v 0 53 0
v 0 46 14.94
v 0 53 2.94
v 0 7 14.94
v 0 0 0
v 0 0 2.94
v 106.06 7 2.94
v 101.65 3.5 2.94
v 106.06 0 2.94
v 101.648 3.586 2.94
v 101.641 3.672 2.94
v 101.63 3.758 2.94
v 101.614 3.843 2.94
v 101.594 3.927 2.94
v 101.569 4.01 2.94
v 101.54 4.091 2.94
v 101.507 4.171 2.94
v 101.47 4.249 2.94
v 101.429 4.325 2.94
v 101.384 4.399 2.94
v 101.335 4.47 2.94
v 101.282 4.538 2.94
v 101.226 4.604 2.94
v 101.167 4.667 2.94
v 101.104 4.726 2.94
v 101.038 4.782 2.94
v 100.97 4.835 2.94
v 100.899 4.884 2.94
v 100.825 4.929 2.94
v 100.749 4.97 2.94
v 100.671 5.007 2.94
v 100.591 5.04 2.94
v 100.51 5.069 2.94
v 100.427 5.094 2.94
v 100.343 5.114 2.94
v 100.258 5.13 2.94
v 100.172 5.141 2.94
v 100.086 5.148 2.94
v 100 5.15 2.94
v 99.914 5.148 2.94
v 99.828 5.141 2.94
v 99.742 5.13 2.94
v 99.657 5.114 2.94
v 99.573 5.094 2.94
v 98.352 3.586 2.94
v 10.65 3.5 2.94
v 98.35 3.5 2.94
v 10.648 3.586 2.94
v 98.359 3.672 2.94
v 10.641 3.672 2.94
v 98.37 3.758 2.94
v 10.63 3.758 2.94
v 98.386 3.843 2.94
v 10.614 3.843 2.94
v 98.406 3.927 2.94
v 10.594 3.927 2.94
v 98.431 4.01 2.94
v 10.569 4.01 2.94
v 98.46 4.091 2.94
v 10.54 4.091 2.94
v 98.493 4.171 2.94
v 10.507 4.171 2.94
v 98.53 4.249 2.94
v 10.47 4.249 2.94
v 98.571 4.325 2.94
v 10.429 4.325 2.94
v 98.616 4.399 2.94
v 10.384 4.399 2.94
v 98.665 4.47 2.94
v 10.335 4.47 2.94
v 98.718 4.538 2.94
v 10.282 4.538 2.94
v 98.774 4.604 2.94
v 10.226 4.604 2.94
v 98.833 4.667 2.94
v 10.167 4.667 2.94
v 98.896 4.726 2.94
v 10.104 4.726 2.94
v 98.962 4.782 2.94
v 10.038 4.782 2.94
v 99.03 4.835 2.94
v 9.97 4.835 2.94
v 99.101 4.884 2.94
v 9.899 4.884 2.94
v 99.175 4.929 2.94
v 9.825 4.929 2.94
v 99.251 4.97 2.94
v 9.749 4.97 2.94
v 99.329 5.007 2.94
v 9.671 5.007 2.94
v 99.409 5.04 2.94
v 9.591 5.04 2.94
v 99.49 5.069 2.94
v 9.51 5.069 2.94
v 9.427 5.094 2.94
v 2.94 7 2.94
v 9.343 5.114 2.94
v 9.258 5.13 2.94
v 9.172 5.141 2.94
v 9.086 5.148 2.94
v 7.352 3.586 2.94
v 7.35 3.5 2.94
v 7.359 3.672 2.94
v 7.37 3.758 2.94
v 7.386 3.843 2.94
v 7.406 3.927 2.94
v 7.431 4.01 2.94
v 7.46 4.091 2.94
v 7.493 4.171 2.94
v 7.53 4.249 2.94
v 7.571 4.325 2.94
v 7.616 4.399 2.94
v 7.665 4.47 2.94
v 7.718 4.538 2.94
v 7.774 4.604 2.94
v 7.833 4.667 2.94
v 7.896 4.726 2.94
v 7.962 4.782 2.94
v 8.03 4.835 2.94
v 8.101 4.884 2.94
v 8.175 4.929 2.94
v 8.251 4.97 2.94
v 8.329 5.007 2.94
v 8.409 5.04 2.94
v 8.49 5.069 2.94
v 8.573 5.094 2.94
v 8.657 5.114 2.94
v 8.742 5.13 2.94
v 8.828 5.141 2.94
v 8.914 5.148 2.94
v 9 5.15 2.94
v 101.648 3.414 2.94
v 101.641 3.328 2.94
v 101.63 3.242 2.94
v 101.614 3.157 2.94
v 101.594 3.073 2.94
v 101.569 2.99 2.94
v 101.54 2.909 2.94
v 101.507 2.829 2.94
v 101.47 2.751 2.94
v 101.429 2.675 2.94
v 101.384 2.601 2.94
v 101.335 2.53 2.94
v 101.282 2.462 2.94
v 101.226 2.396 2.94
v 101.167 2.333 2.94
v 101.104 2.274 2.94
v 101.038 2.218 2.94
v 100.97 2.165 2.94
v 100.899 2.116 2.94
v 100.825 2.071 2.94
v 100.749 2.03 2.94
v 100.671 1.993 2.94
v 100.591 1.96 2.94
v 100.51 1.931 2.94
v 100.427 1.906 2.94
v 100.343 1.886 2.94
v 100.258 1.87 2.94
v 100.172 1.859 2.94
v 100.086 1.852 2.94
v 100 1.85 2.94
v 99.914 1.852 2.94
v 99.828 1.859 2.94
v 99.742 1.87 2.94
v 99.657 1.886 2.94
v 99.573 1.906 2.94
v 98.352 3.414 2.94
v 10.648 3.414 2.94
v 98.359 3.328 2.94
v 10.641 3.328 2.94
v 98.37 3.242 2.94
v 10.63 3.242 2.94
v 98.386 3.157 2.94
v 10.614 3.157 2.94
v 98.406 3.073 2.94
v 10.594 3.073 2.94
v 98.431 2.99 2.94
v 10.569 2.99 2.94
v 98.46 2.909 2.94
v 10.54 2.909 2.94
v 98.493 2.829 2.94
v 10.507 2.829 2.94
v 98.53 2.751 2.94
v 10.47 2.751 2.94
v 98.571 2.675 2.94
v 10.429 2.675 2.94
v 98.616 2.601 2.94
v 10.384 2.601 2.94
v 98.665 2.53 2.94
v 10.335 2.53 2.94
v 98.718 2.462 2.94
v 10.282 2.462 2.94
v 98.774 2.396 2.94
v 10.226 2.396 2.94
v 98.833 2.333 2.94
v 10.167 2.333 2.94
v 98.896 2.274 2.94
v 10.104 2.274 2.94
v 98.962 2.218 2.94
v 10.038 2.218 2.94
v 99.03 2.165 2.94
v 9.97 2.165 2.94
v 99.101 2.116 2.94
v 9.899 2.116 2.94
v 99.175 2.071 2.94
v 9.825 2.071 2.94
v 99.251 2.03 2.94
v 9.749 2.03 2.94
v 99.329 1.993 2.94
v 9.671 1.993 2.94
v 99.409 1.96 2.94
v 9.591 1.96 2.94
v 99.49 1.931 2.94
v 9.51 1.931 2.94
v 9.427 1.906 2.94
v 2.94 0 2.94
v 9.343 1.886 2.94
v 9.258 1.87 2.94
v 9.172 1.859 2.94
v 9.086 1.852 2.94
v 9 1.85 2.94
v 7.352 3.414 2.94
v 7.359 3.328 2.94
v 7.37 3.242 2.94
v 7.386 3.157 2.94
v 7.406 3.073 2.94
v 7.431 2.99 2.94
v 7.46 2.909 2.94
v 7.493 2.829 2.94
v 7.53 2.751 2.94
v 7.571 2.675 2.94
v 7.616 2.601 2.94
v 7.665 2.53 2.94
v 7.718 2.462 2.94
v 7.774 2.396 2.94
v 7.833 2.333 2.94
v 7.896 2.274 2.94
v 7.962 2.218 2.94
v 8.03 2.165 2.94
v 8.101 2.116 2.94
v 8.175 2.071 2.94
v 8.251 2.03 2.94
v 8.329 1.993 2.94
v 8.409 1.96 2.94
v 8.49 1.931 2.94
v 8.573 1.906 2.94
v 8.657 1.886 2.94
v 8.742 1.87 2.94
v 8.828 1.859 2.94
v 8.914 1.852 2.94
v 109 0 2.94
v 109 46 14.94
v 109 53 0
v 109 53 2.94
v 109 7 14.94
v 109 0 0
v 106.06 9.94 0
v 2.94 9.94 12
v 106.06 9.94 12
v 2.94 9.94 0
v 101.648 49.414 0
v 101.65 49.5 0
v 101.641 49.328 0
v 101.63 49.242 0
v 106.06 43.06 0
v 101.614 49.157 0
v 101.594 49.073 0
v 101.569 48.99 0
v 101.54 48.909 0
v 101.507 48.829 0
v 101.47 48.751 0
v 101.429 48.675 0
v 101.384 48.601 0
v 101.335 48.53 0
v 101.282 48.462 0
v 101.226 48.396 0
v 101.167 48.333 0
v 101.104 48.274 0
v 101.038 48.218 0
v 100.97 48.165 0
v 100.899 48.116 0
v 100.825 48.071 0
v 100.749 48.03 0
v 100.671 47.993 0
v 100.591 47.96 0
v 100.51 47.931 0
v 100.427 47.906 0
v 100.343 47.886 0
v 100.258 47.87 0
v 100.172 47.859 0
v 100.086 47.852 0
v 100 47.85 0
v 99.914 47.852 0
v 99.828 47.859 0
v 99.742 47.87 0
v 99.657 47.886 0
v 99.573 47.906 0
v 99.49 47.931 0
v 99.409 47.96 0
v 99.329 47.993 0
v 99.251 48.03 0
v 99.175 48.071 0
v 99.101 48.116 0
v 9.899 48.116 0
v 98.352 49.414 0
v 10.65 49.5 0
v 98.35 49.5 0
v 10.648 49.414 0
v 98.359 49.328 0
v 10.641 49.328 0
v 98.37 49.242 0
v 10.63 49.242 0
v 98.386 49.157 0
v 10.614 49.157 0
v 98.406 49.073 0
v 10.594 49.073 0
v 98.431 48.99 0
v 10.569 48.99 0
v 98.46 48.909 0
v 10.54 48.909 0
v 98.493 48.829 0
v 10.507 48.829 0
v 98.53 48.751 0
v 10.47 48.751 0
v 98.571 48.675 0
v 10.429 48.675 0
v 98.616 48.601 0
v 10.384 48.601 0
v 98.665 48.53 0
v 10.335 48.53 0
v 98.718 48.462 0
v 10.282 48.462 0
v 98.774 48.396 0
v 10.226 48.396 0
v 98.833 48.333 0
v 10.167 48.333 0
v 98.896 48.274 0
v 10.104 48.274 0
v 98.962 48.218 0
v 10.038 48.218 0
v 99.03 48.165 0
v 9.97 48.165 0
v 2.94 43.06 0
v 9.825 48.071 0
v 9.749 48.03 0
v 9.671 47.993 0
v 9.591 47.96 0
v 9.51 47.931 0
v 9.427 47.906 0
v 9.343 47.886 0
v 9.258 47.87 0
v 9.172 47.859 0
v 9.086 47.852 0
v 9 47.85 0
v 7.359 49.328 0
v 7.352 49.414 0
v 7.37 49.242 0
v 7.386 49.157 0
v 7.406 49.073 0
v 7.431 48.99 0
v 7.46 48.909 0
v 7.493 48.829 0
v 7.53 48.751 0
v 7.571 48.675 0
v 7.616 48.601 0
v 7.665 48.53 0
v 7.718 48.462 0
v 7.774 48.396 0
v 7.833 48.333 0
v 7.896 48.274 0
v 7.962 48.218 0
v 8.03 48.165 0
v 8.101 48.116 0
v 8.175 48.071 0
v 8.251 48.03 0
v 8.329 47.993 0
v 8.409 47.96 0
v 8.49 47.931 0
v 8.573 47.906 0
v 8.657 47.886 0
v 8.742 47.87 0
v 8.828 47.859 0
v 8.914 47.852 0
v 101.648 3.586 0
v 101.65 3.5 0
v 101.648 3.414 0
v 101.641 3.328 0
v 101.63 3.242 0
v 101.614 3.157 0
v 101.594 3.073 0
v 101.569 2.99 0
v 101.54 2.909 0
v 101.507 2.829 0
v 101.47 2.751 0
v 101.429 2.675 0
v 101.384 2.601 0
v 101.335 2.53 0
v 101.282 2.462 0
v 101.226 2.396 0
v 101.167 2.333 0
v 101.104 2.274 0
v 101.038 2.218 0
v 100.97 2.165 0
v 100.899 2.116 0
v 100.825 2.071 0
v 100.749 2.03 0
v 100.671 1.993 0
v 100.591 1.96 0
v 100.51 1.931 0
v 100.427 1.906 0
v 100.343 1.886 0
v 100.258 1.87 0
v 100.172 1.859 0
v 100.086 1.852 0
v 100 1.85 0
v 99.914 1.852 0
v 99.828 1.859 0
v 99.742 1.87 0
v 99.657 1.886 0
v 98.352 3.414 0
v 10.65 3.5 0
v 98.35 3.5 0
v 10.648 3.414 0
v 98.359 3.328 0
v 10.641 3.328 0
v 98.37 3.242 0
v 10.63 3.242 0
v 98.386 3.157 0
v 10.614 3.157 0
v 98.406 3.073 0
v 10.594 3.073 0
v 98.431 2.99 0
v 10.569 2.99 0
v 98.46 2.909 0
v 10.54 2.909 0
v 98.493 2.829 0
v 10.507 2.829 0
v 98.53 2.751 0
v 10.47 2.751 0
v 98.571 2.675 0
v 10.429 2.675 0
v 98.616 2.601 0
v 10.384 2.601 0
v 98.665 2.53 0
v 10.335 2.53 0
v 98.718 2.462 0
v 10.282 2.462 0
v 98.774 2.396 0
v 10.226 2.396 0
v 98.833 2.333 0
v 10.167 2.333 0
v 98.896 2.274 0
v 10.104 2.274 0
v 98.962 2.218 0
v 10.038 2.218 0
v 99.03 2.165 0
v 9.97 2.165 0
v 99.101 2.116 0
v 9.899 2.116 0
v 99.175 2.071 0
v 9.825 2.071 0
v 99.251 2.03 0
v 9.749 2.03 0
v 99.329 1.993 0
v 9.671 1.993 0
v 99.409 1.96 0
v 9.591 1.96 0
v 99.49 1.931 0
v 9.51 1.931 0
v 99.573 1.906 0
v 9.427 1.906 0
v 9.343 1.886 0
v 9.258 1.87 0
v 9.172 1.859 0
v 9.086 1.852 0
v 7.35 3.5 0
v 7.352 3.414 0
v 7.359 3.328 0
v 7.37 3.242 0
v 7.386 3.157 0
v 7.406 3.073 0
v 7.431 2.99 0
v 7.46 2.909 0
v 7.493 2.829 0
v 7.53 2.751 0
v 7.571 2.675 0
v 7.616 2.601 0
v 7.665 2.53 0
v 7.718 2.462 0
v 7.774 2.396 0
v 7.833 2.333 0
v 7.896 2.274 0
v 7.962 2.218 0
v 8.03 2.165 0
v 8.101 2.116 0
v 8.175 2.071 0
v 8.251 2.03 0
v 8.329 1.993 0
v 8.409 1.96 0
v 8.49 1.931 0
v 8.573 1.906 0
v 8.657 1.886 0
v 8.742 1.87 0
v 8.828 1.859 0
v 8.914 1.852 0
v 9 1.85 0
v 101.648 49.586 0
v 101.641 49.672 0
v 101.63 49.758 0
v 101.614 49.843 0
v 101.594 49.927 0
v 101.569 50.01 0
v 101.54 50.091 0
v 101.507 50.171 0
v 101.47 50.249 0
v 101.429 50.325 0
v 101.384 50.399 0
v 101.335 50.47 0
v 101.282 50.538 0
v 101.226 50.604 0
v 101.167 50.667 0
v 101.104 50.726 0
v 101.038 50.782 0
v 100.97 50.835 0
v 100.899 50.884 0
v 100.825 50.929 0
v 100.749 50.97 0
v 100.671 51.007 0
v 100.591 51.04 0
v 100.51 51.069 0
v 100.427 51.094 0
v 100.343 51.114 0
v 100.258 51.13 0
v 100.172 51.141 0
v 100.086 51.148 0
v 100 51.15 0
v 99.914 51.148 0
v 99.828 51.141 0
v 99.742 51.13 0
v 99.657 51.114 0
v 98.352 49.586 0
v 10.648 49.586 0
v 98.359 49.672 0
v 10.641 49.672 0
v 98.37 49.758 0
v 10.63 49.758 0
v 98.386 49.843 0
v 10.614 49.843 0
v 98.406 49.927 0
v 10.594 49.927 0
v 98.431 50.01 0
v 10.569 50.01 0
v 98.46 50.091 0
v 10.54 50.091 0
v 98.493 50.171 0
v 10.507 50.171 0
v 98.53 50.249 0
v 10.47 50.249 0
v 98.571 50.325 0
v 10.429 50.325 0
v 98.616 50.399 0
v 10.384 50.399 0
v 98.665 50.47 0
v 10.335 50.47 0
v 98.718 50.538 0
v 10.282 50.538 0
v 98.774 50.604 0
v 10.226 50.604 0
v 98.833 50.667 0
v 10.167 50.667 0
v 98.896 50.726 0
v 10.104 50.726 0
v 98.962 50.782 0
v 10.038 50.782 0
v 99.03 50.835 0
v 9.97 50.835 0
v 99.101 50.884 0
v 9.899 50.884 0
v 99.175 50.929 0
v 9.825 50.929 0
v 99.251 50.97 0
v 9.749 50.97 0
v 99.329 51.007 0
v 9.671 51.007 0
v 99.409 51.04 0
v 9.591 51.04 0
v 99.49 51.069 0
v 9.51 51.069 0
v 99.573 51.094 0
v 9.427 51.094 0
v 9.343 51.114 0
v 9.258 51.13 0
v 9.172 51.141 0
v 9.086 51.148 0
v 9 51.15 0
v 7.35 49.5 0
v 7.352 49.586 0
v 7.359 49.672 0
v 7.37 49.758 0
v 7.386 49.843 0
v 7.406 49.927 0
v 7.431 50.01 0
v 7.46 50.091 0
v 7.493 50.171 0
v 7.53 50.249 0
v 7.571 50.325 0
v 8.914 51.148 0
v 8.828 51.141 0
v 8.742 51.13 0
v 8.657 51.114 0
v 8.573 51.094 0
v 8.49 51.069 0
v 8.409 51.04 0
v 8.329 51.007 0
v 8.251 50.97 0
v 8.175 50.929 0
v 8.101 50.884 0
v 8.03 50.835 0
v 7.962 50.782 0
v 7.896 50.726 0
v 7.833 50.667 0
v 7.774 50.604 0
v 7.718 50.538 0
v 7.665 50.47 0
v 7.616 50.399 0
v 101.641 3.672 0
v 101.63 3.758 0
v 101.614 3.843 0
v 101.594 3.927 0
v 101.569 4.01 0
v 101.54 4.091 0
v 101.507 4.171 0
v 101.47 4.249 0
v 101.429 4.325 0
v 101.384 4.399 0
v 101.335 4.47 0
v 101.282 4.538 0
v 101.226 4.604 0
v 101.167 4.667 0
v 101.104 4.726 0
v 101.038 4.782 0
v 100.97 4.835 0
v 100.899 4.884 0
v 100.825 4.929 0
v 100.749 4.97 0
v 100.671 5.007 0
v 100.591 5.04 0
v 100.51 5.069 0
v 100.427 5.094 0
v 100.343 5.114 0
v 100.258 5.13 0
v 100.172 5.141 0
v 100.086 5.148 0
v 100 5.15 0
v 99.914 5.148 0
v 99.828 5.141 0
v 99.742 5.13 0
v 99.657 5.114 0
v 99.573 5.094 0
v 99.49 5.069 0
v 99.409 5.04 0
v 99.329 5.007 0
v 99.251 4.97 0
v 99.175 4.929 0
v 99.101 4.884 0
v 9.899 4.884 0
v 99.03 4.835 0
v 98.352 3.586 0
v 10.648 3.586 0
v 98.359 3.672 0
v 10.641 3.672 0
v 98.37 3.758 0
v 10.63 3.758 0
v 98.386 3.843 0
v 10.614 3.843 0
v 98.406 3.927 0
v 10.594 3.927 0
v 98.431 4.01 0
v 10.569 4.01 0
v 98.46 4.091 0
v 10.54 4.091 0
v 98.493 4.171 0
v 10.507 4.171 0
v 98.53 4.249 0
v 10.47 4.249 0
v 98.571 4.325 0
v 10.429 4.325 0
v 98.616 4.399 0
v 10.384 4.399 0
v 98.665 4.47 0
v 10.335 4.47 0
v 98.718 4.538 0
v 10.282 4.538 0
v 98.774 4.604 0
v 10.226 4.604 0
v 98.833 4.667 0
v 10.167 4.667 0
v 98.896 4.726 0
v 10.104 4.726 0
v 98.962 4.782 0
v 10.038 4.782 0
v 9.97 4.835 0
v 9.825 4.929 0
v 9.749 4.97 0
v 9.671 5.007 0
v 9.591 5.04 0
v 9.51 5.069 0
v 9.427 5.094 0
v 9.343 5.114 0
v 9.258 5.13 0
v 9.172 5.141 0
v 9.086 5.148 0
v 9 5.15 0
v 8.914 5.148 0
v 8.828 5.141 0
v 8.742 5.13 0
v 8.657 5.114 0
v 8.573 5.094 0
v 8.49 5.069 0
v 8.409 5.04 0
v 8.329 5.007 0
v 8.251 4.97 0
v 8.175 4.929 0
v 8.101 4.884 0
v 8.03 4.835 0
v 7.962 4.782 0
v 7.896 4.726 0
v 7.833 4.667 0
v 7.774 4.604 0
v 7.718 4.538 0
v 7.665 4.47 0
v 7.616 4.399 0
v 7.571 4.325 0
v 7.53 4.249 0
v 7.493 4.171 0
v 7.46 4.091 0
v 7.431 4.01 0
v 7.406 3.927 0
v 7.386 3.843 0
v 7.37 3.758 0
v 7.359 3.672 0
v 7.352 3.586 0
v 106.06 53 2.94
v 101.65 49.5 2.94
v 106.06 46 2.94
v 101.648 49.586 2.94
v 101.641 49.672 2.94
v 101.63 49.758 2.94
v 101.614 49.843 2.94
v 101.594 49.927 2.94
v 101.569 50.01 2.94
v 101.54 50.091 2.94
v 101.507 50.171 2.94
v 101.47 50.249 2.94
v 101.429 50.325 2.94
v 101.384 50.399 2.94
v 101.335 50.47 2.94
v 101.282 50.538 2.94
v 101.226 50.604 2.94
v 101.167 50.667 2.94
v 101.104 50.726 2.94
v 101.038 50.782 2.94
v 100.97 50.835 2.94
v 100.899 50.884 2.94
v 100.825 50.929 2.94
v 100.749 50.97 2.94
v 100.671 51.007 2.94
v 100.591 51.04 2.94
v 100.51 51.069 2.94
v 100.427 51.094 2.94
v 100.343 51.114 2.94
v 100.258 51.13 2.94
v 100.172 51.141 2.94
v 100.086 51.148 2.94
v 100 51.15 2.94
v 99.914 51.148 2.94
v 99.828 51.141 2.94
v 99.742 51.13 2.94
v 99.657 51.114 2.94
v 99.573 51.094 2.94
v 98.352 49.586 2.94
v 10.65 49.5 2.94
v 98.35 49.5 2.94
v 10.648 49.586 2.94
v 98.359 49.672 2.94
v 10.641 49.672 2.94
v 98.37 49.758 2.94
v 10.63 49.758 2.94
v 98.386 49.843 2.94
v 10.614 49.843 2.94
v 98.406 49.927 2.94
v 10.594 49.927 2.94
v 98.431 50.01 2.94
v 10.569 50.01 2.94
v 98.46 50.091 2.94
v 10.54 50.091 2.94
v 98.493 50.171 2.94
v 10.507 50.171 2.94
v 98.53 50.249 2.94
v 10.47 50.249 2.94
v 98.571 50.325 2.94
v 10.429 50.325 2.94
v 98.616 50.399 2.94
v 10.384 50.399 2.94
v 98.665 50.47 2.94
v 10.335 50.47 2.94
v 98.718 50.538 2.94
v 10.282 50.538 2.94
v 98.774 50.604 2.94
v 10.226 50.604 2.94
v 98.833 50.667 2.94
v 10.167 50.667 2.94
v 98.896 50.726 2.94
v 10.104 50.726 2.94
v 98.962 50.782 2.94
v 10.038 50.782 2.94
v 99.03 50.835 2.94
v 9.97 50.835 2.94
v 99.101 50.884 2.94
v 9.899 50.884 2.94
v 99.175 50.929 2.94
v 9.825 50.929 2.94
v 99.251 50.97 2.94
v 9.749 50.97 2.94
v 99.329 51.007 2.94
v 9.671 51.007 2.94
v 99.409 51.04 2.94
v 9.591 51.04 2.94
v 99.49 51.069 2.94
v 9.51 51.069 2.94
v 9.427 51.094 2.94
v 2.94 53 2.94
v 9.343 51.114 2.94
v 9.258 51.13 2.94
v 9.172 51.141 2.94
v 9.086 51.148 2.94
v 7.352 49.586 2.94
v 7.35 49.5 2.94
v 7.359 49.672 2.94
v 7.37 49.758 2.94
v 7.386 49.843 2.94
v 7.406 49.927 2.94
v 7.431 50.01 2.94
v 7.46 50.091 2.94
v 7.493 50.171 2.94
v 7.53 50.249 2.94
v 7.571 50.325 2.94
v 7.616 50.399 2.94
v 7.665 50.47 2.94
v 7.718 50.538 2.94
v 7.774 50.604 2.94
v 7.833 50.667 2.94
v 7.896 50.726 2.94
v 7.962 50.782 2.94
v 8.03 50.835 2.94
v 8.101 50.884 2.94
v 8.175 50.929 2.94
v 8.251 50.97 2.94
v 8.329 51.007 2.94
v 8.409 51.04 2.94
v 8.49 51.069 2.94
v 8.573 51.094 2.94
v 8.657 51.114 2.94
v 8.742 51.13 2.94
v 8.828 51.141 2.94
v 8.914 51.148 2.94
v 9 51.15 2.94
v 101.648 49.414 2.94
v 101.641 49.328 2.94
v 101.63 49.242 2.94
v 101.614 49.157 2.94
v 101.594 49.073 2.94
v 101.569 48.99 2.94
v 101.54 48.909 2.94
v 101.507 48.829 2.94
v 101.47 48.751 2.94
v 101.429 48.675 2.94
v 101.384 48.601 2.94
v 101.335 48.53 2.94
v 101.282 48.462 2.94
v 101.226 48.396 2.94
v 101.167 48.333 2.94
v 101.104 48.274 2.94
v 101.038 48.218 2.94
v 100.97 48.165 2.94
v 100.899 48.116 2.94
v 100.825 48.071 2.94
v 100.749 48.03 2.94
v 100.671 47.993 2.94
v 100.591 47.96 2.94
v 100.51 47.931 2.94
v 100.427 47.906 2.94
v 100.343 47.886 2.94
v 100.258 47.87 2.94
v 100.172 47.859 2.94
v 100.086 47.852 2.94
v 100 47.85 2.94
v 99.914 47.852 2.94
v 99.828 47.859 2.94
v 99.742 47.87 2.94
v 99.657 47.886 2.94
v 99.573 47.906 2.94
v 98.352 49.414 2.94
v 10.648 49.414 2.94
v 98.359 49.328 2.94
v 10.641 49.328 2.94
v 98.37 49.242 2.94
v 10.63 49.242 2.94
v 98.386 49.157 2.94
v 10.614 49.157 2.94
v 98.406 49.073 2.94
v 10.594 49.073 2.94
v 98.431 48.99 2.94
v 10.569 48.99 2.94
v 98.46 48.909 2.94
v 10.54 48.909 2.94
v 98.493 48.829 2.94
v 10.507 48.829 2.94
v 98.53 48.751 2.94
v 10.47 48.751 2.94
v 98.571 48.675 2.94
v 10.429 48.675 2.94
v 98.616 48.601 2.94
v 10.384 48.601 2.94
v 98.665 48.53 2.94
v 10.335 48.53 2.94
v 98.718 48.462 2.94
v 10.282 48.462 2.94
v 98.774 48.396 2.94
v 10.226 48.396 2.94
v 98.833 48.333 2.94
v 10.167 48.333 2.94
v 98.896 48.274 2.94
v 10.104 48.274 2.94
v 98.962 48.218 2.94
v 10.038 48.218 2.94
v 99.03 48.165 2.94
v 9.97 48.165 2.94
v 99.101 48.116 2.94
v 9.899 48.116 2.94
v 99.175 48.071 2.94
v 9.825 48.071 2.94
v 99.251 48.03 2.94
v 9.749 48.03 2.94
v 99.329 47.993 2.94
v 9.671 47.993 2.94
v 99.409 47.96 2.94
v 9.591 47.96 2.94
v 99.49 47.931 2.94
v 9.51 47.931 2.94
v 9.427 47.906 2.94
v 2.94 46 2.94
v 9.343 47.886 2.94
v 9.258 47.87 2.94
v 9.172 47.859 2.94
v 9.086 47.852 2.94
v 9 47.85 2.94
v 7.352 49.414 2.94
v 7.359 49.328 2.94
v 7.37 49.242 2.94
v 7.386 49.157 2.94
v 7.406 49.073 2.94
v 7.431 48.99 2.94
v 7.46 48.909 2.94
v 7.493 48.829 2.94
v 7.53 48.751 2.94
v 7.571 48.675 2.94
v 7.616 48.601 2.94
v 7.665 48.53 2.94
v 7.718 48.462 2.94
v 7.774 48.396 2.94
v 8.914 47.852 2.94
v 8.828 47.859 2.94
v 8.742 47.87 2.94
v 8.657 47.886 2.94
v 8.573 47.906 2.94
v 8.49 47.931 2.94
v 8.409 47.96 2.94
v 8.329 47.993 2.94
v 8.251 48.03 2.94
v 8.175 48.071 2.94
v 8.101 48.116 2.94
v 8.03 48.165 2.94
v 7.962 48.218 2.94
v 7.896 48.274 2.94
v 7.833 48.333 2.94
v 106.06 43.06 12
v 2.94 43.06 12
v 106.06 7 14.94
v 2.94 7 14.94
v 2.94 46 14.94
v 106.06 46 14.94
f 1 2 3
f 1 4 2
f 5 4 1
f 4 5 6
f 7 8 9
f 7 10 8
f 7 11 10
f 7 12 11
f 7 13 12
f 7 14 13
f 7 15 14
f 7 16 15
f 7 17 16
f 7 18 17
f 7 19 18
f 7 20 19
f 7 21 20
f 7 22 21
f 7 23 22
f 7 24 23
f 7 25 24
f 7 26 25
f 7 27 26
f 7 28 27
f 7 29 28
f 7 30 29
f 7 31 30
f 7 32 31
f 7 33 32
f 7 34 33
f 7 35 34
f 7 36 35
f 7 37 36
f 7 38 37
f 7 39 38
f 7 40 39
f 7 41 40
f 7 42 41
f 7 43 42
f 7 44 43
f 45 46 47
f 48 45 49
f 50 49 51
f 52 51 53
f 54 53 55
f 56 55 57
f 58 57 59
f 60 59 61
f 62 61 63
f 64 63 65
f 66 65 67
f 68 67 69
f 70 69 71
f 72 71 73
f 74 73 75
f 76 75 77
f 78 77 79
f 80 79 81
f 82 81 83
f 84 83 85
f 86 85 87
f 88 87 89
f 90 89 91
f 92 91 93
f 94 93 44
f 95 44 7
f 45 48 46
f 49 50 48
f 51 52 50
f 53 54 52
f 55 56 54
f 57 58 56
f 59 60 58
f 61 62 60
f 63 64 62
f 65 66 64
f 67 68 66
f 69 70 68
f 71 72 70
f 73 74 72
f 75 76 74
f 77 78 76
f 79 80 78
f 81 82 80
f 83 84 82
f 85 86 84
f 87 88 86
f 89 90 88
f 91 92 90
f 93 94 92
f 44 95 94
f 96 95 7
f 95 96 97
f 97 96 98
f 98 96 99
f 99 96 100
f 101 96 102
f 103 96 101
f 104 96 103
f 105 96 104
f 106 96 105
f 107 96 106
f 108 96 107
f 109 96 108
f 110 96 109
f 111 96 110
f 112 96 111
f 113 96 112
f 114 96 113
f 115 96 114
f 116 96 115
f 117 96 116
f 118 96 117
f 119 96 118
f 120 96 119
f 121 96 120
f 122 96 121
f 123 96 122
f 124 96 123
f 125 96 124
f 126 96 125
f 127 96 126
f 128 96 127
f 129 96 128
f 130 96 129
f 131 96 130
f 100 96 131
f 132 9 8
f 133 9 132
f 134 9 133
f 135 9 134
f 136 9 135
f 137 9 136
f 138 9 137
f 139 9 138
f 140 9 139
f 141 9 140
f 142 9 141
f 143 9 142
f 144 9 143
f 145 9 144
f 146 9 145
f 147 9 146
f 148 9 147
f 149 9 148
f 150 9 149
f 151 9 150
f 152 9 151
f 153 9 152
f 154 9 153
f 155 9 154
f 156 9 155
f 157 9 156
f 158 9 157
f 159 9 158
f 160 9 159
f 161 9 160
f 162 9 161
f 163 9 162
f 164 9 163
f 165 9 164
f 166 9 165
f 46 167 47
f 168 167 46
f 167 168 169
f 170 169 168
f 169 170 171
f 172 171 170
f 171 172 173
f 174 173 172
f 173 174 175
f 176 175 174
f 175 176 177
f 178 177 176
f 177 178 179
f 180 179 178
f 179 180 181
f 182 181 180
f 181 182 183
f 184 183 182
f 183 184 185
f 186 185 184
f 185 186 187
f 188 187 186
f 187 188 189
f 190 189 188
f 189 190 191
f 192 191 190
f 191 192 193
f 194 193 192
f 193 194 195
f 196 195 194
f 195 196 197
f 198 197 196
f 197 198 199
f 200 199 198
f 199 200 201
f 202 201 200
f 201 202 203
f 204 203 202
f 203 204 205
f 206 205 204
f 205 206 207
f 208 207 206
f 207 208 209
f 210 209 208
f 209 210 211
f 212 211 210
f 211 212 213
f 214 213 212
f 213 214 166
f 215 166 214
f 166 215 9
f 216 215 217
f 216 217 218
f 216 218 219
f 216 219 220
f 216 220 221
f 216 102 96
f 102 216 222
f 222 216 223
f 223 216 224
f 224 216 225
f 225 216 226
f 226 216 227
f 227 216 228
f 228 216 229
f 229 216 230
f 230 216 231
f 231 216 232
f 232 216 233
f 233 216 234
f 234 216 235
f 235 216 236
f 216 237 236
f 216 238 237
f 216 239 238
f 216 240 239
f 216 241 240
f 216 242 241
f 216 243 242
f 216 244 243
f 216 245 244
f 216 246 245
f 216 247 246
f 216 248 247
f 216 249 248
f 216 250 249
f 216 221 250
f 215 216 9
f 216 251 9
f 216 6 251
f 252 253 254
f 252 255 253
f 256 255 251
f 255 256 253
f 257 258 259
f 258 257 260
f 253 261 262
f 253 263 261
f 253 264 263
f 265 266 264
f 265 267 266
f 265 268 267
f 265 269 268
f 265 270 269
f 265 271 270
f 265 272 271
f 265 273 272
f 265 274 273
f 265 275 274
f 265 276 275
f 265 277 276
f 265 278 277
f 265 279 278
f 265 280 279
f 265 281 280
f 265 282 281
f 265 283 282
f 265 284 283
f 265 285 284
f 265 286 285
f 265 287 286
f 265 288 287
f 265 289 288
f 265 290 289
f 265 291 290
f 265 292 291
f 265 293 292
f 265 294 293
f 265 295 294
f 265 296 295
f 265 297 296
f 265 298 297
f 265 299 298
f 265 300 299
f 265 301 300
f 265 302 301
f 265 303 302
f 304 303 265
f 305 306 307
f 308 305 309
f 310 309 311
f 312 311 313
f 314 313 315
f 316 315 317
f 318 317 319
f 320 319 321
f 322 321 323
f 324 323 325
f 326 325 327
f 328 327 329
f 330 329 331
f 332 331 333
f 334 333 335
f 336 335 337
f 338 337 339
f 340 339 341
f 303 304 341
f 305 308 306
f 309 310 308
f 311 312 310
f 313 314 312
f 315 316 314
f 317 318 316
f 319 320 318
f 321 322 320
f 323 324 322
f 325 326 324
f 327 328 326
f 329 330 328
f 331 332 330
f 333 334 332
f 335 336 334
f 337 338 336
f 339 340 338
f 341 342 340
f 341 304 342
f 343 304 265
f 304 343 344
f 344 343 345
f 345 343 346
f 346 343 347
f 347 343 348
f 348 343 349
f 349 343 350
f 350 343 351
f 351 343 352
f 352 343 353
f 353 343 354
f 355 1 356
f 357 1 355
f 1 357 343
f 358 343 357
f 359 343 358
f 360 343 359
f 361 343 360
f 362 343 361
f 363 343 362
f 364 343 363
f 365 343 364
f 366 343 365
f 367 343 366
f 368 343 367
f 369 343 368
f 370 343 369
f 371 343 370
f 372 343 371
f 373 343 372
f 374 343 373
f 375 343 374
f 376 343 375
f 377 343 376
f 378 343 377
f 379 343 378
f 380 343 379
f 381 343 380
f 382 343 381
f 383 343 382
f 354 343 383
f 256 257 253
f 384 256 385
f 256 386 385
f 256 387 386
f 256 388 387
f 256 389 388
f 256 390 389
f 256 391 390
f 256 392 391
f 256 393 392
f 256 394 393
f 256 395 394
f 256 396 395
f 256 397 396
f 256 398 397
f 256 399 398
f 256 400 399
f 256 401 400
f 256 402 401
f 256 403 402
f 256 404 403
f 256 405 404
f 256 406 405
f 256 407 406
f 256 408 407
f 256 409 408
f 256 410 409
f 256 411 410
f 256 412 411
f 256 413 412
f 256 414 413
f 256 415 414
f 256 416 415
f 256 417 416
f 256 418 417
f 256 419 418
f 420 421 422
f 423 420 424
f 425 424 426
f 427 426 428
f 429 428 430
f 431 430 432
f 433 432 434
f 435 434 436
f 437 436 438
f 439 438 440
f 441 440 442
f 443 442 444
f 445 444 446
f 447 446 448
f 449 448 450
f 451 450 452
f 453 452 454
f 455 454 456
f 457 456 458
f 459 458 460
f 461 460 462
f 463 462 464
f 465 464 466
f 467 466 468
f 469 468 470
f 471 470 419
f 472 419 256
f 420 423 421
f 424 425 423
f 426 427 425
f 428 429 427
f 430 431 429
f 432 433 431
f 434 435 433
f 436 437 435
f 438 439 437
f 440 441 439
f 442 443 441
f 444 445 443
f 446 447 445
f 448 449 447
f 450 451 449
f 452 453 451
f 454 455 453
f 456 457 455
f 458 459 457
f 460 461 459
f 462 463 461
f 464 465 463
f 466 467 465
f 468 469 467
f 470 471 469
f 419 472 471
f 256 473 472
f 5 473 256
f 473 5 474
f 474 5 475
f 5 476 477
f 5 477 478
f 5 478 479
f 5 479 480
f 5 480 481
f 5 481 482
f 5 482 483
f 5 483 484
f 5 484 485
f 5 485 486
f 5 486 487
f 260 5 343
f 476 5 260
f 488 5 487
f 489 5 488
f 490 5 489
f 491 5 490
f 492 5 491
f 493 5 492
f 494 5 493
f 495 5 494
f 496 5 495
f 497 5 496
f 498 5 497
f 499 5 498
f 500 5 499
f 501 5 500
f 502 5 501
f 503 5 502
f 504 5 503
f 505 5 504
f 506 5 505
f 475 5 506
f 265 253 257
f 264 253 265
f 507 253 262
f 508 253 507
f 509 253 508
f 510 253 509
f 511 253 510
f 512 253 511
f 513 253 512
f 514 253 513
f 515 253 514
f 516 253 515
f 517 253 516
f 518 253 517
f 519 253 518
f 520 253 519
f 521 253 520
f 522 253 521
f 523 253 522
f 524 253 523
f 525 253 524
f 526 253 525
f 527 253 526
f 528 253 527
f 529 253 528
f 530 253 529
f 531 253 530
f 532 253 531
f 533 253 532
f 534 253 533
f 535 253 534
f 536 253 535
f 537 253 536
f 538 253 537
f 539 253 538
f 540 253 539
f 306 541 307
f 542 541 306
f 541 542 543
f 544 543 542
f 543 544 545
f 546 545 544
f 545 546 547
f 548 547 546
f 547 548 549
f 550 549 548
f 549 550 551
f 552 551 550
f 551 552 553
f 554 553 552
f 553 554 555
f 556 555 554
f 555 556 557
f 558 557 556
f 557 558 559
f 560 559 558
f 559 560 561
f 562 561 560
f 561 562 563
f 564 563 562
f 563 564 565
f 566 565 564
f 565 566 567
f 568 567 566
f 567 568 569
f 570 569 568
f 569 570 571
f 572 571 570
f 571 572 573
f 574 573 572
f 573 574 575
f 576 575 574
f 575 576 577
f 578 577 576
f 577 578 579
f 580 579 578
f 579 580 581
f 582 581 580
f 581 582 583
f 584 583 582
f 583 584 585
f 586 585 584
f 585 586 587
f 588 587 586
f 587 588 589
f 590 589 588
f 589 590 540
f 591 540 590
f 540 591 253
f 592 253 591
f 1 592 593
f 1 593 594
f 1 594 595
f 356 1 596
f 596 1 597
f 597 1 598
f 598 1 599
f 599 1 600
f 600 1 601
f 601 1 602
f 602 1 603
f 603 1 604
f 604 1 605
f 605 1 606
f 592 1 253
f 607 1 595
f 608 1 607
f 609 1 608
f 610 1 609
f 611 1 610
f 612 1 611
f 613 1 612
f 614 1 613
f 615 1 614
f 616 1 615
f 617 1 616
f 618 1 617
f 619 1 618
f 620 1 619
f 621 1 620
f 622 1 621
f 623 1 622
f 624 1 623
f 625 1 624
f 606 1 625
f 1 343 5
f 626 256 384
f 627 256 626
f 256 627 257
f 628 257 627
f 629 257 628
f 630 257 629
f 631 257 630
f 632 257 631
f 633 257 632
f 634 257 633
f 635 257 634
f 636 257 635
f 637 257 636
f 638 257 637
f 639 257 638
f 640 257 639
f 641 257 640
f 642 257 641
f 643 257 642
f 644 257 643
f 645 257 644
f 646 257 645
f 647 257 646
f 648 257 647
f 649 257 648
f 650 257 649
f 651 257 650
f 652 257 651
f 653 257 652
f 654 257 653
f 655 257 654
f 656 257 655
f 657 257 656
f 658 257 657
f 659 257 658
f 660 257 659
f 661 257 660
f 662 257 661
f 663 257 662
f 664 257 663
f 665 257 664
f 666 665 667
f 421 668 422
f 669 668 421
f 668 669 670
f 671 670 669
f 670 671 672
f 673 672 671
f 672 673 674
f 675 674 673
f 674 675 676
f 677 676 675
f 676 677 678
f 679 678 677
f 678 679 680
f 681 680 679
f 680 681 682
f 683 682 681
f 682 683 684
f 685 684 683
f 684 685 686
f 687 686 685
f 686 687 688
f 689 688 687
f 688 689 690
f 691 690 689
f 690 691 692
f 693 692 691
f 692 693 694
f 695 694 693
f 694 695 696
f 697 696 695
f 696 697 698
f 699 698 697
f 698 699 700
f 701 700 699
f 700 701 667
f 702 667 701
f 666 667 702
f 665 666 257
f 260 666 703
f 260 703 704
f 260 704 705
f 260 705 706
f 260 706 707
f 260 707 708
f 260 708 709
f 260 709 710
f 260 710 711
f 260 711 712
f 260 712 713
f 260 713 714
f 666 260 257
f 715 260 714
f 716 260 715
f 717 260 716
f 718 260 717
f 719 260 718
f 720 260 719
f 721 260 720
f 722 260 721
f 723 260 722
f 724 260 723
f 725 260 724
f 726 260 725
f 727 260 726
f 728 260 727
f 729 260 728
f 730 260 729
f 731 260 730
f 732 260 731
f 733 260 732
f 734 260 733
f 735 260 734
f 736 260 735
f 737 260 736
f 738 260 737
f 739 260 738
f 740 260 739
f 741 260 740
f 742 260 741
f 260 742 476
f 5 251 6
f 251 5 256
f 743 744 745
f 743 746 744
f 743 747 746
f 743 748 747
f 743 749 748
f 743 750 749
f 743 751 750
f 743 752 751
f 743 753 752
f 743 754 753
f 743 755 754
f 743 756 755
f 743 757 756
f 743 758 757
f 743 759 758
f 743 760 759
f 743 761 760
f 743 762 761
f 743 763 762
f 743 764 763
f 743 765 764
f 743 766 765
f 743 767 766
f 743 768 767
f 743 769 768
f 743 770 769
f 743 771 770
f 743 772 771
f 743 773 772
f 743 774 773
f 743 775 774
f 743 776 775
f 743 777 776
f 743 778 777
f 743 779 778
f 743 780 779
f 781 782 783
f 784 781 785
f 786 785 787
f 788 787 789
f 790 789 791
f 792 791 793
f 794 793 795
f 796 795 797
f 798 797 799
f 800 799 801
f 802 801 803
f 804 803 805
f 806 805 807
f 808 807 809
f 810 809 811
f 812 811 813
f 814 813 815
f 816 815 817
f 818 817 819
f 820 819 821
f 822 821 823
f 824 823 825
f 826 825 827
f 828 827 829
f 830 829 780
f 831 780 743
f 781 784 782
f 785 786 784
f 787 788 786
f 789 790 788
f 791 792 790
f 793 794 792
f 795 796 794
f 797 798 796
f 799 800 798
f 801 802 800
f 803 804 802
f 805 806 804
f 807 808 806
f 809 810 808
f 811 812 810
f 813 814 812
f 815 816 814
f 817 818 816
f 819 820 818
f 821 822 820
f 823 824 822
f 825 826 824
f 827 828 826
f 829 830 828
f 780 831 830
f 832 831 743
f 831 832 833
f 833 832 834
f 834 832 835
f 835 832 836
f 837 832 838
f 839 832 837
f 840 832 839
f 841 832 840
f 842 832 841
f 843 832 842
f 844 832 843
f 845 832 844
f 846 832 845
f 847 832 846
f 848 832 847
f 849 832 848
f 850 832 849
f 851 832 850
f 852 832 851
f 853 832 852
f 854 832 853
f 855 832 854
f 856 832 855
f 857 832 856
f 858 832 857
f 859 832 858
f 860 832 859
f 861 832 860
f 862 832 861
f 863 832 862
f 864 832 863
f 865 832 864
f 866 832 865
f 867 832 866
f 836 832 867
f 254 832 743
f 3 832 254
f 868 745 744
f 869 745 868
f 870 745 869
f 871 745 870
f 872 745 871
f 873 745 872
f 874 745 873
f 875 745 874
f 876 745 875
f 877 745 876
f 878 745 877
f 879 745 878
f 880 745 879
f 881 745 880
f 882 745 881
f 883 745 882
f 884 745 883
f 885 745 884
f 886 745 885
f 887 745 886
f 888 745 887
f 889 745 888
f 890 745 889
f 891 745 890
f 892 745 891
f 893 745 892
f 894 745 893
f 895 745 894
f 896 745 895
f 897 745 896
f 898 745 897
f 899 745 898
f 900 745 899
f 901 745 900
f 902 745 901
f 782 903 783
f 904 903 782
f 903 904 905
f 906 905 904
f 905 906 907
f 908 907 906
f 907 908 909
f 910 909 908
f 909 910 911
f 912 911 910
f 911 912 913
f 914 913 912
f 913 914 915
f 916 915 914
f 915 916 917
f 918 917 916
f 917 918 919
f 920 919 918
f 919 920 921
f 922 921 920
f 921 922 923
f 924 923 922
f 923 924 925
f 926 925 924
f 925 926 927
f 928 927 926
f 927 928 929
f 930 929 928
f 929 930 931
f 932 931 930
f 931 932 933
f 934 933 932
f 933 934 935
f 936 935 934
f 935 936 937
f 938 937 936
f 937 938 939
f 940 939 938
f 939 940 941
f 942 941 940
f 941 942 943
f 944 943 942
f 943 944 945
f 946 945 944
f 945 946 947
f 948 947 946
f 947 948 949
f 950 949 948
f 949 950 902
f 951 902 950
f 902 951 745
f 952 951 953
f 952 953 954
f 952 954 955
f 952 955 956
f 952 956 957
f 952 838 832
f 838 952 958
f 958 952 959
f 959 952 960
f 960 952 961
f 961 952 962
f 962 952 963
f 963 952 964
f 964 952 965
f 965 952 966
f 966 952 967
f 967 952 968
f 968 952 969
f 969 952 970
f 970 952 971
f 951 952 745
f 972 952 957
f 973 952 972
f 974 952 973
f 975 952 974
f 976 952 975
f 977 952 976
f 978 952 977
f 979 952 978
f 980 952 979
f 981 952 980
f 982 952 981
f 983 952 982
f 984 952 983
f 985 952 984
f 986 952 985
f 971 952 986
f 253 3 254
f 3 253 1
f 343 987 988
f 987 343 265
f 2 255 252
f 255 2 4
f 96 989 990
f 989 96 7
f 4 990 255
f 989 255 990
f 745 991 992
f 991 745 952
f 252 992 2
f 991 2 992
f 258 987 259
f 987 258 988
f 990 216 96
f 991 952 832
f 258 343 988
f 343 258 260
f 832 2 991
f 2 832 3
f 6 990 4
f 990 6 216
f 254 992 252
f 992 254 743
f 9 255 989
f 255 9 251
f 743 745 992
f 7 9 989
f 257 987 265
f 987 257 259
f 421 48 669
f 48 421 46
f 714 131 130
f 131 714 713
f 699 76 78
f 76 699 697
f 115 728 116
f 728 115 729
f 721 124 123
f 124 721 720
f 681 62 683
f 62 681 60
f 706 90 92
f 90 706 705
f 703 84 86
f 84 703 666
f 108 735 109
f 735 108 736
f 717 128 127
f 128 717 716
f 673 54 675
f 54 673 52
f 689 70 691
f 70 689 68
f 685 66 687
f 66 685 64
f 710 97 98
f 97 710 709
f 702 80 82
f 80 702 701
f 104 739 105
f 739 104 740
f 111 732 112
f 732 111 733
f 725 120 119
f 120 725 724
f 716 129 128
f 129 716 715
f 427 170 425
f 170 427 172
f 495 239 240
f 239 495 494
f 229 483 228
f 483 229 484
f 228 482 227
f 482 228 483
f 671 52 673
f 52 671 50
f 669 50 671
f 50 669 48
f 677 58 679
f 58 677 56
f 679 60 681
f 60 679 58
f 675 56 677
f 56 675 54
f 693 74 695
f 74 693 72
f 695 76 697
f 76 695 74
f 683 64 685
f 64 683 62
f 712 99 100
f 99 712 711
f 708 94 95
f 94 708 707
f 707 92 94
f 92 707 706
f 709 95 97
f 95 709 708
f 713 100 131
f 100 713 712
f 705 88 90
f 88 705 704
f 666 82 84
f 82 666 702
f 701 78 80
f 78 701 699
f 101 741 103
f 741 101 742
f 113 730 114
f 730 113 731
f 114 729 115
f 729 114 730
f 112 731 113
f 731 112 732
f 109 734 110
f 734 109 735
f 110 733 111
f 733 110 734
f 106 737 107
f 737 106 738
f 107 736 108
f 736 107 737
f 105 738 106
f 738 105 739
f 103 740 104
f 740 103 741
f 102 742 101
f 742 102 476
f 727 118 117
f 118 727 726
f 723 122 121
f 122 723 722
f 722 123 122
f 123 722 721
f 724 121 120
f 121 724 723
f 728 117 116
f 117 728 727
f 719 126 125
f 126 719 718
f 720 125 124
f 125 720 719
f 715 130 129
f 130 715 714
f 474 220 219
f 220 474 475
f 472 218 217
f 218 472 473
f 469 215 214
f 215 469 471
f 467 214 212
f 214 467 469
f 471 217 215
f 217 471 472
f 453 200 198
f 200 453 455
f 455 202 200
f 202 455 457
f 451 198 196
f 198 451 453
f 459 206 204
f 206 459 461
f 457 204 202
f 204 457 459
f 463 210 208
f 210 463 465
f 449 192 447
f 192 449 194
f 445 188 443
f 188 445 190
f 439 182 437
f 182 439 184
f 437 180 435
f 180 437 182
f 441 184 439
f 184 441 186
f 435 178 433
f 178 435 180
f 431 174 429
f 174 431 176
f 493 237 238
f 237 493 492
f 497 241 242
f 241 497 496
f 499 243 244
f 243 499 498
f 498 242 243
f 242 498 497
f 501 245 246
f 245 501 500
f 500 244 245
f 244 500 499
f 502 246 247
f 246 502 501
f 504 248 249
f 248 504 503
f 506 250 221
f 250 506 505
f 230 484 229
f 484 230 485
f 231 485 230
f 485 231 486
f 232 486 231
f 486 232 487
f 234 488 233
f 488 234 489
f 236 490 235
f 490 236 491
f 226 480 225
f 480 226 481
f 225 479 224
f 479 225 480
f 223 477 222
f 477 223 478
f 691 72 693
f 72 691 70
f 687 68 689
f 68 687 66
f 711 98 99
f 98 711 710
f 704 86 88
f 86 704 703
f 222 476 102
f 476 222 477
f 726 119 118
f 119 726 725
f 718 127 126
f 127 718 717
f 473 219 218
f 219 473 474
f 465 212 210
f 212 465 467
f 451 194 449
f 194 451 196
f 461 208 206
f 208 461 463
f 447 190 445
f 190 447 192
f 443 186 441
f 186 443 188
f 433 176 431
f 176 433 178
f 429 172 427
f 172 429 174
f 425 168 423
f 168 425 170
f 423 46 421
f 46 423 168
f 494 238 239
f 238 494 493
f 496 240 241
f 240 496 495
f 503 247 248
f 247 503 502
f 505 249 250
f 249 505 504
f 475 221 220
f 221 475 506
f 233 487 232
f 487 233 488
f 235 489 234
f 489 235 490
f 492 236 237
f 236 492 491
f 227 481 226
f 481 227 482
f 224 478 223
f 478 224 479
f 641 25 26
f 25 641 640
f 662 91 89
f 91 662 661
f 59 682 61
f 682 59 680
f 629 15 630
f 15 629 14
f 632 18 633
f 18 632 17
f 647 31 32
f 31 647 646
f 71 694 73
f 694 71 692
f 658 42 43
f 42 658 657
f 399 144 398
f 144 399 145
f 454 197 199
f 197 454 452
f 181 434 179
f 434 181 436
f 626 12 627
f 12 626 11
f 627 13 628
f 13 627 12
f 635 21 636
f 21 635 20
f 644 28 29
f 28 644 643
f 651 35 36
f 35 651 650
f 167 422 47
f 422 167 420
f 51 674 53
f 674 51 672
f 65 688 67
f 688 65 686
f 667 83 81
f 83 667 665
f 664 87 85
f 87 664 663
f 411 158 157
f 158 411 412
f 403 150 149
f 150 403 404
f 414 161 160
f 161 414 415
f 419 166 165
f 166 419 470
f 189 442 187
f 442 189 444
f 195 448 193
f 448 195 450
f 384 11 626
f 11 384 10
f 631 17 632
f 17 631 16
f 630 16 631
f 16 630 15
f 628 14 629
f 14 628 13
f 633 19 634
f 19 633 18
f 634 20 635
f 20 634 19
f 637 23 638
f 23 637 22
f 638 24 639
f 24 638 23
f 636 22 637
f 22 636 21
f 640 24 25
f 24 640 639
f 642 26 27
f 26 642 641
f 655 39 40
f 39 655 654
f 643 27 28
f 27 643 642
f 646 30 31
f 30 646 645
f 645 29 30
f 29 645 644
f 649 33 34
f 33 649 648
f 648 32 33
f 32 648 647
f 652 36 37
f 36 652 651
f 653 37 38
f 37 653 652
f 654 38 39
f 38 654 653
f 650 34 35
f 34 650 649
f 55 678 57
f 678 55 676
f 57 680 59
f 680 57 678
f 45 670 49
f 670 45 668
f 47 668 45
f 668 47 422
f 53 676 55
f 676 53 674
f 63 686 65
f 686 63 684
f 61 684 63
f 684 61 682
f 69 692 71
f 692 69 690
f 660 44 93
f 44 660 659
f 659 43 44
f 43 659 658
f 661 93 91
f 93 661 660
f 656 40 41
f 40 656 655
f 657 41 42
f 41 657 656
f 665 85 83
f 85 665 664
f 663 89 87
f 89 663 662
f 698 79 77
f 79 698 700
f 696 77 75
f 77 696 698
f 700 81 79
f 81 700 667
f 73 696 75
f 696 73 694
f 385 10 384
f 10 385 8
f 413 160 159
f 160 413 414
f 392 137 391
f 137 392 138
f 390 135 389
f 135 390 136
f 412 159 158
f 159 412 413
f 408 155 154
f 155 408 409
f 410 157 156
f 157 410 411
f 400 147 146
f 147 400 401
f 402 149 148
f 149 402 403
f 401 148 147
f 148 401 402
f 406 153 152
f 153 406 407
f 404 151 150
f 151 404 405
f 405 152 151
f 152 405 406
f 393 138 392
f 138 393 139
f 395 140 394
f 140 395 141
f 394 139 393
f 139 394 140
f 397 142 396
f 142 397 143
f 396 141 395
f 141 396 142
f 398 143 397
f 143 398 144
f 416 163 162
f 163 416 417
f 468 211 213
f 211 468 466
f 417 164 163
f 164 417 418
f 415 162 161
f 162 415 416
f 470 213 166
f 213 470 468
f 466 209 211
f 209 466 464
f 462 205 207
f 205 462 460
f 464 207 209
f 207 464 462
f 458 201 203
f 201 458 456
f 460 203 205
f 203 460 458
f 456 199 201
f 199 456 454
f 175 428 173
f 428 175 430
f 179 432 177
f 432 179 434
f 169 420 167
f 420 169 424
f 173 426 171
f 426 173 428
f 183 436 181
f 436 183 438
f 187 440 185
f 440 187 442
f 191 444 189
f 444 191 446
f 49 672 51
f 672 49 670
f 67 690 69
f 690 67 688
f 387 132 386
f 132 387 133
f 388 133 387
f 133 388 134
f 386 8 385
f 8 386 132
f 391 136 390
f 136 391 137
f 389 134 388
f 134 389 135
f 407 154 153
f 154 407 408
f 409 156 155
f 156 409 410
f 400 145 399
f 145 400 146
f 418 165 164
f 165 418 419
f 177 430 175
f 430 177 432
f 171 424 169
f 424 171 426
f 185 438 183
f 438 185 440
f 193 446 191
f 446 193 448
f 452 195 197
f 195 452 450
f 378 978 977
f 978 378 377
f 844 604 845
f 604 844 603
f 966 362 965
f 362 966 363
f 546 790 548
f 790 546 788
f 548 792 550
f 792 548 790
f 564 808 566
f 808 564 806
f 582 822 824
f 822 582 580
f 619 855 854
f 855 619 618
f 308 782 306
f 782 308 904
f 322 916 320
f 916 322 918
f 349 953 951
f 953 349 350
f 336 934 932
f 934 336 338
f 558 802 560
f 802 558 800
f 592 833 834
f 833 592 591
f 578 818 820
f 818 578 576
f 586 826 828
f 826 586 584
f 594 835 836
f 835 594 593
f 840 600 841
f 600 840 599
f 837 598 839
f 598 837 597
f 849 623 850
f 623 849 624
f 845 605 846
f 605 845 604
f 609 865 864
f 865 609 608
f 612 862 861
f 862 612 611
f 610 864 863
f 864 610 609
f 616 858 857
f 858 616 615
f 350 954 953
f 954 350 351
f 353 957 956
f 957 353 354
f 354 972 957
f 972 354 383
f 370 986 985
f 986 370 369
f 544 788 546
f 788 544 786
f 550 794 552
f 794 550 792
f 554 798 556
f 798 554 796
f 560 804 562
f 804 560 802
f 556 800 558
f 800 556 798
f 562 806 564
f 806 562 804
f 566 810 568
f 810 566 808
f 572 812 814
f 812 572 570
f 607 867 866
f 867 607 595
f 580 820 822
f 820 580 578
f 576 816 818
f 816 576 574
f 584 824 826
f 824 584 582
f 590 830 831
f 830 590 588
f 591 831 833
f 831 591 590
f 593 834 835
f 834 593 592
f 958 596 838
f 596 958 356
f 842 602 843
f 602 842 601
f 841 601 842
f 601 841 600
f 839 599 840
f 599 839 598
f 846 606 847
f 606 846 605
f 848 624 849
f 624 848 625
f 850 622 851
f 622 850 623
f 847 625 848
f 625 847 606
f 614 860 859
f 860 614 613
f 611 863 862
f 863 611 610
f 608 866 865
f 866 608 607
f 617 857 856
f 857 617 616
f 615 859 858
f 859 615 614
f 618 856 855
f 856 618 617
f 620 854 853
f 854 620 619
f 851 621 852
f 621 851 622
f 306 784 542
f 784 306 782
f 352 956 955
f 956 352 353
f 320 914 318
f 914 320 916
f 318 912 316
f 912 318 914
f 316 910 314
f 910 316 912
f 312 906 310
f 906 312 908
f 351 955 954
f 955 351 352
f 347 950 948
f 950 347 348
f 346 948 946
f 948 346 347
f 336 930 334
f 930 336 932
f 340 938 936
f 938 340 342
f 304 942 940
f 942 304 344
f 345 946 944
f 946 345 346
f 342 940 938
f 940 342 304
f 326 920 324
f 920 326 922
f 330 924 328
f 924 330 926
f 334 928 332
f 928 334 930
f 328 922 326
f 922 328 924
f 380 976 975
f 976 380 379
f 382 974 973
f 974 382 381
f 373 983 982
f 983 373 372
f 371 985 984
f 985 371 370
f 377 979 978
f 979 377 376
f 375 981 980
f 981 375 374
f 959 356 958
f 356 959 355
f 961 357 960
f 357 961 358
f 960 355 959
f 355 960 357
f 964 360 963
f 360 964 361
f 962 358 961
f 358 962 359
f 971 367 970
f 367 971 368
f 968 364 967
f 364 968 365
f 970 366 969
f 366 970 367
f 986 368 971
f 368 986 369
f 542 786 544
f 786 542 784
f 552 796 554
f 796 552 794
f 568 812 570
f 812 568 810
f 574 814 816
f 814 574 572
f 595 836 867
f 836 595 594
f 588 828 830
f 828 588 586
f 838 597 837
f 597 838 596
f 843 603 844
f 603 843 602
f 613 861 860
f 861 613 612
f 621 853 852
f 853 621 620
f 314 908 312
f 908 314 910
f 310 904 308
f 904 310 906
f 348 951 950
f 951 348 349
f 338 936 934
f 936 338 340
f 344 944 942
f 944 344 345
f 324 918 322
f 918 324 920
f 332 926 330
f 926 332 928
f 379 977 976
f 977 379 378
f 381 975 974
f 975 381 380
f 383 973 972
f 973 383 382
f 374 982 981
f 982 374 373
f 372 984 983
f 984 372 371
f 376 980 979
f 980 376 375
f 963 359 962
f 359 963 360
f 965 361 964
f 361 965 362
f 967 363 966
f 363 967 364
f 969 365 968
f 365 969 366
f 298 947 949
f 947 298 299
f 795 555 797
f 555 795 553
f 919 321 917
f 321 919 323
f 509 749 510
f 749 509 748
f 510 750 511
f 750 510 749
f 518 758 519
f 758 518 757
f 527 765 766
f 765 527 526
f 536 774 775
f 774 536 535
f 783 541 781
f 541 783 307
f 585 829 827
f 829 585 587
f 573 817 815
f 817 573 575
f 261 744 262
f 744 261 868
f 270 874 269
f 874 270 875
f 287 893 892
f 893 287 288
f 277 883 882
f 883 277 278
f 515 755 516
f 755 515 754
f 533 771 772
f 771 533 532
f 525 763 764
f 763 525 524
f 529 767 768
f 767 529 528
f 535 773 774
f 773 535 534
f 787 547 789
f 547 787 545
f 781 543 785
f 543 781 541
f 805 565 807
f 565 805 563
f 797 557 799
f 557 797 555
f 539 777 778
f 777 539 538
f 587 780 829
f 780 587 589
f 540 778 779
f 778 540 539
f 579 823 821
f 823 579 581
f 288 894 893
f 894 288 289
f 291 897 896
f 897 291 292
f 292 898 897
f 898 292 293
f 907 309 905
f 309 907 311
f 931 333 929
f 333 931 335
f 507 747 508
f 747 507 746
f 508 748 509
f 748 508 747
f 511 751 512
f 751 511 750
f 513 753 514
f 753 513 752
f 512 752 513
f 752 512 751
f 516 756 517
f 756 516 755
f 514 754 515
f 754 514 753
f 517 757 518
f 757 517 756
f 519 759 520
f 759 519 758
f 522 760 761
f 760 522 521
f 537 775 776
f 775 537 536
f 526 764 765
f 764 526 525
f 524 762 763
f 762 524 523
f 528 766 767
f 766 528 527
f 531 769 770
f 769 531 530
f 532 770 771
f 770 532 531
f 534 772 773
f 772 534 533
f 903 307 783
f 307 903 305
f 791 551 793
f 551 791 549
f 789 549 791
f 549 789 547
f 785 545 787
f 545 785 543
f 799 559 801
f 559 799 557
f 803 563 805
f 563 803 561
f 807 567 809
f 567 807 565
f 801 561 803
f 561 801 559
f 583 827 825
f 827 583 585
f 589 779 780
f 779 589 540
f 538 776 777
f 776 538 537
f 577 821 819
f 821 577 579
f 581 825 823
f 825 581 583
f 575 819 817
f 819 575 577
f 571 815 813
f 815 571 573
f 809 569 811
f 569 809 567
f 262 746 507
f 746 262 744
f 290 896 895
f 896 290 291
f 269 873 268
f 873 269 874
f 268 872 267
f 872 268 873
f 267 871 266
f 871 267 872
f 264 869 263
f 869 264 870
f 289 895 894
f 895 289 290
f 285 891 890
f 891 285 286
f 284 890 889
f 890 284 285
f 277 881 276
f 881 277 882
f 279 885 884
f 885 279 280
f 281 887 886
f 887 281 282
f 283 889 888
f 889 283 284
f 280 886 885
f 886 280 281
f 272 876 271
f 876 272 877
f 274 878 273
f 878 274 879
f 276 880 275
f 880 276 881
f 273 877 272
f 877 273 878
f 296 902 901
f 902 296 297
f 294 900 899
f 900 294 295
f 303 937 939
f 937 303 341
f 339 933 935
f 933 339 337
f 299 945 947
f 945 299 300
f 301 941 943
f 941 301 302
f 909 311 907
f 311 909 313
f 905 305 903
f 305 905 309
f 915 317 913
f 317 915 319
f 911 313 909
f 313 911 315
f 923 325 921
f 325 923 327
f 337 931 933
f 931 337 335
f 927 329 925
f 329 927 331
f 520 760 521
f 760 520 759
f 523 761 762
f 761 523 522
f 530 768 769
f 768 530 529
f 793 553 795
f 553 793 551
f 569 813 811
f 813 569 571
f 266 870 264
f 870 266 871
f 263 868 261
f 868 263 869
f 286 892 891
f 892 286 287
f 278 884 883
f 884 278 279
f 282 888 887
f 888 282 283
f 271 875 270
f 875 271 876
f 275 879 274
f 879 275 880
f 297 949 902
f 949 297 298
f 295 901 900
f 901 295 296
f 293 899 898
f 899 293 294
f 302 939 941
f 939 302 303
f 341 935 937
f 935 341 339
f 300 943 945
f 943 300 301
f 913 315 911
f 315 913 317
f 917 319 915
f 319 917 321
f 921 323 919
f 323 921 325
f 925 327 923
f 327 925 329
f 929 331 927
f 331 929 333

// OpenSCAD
// This file is meant for use with OpenSCAD, a
// constructive solid geometry 3D CAD program.
// See https://www.openscad.org/

// The height dimensions have been rounded to best
// support a 0.14mm layer height.

// Render accuracy settings
$fa = 3;
$fs = 0.05;

// These numbers define the object dimensions.
// Units: mm
$wallthick = 2.94;
$screw4holedia = 3.3;
$screwxinset = 9;
$screwyinset = 3.5;
$totalwidth = 109;
$totaldepth = 53;
$innerheight = 12;
$flangedepth = 7;

$screw4locs = [[$screwxinset,$screwyinset,0], [$totalwidth-$screwxinset,$screwyinset,0], [$screwxinset,$totaldepth-$screwyinset,0], [$totalwidth-$screwxinset,$totaldepth-$screwyinset,0]];

difference()
{
  union()
  {
    cube([$totalwidth, $flangedepth+$wallthick, $wallthick]);
    translate([0, $totaldepth-$flangedepth-$wallthick, 0])
    {
      cube([$totalwidth, $flangedepth+$wallthick, $wallthick]);
    }
    translate([0, $flangedepth, 0])
    {
      cube([$totalwidth, $wallthick, $innerheight+$wallthick]);
    }
    translate([0, $totaldepth-$flangedepth-$wallthick, 0])
    {
      cube([$totalwidth, $wallthick, $innerheight+$wallthick]);
    }
    translate([0, $flangedepth, $innerheight])
    {
      cube([$totalwidth, $totaldepth - 2*$flangedepth, $wallthick]);
    }
    rotate([90, 0, 90])
    {
      linear_extrude(height=$wallthick)
      {
        polygon(points = [[0,0], [0,$wallthick], [$flangedepth, $innerheight+$wallthick], [$totaldepth-$flangedepth,$innerheight+$wallthick], [$totaldepth, $wallthick], [$totaldepth, 0]]);
      }
    }
    translate([$totalwidth-$wallthick, 0, 0])
    {
      rotate([90, 0, 90])
      {
        linear_extrude(height=$wallthick)
        {
          polygon(points = [[0,0], [0,$wallthick], [$flangedepth, $innerheight+$wallthick], [$totaldepth-$flangedepth,$innerheight+$wallthick], [$totaldepth, $wallthick], [$totaldepth, 0]]);
        }
      }
    }
  }
  
  
  for ($s4l = $screw4locs)
  {
    translate($s4l)
    {
      cylinder(r=0.5*$screw4holedia, h=$wallthick);
    }
  }
}
